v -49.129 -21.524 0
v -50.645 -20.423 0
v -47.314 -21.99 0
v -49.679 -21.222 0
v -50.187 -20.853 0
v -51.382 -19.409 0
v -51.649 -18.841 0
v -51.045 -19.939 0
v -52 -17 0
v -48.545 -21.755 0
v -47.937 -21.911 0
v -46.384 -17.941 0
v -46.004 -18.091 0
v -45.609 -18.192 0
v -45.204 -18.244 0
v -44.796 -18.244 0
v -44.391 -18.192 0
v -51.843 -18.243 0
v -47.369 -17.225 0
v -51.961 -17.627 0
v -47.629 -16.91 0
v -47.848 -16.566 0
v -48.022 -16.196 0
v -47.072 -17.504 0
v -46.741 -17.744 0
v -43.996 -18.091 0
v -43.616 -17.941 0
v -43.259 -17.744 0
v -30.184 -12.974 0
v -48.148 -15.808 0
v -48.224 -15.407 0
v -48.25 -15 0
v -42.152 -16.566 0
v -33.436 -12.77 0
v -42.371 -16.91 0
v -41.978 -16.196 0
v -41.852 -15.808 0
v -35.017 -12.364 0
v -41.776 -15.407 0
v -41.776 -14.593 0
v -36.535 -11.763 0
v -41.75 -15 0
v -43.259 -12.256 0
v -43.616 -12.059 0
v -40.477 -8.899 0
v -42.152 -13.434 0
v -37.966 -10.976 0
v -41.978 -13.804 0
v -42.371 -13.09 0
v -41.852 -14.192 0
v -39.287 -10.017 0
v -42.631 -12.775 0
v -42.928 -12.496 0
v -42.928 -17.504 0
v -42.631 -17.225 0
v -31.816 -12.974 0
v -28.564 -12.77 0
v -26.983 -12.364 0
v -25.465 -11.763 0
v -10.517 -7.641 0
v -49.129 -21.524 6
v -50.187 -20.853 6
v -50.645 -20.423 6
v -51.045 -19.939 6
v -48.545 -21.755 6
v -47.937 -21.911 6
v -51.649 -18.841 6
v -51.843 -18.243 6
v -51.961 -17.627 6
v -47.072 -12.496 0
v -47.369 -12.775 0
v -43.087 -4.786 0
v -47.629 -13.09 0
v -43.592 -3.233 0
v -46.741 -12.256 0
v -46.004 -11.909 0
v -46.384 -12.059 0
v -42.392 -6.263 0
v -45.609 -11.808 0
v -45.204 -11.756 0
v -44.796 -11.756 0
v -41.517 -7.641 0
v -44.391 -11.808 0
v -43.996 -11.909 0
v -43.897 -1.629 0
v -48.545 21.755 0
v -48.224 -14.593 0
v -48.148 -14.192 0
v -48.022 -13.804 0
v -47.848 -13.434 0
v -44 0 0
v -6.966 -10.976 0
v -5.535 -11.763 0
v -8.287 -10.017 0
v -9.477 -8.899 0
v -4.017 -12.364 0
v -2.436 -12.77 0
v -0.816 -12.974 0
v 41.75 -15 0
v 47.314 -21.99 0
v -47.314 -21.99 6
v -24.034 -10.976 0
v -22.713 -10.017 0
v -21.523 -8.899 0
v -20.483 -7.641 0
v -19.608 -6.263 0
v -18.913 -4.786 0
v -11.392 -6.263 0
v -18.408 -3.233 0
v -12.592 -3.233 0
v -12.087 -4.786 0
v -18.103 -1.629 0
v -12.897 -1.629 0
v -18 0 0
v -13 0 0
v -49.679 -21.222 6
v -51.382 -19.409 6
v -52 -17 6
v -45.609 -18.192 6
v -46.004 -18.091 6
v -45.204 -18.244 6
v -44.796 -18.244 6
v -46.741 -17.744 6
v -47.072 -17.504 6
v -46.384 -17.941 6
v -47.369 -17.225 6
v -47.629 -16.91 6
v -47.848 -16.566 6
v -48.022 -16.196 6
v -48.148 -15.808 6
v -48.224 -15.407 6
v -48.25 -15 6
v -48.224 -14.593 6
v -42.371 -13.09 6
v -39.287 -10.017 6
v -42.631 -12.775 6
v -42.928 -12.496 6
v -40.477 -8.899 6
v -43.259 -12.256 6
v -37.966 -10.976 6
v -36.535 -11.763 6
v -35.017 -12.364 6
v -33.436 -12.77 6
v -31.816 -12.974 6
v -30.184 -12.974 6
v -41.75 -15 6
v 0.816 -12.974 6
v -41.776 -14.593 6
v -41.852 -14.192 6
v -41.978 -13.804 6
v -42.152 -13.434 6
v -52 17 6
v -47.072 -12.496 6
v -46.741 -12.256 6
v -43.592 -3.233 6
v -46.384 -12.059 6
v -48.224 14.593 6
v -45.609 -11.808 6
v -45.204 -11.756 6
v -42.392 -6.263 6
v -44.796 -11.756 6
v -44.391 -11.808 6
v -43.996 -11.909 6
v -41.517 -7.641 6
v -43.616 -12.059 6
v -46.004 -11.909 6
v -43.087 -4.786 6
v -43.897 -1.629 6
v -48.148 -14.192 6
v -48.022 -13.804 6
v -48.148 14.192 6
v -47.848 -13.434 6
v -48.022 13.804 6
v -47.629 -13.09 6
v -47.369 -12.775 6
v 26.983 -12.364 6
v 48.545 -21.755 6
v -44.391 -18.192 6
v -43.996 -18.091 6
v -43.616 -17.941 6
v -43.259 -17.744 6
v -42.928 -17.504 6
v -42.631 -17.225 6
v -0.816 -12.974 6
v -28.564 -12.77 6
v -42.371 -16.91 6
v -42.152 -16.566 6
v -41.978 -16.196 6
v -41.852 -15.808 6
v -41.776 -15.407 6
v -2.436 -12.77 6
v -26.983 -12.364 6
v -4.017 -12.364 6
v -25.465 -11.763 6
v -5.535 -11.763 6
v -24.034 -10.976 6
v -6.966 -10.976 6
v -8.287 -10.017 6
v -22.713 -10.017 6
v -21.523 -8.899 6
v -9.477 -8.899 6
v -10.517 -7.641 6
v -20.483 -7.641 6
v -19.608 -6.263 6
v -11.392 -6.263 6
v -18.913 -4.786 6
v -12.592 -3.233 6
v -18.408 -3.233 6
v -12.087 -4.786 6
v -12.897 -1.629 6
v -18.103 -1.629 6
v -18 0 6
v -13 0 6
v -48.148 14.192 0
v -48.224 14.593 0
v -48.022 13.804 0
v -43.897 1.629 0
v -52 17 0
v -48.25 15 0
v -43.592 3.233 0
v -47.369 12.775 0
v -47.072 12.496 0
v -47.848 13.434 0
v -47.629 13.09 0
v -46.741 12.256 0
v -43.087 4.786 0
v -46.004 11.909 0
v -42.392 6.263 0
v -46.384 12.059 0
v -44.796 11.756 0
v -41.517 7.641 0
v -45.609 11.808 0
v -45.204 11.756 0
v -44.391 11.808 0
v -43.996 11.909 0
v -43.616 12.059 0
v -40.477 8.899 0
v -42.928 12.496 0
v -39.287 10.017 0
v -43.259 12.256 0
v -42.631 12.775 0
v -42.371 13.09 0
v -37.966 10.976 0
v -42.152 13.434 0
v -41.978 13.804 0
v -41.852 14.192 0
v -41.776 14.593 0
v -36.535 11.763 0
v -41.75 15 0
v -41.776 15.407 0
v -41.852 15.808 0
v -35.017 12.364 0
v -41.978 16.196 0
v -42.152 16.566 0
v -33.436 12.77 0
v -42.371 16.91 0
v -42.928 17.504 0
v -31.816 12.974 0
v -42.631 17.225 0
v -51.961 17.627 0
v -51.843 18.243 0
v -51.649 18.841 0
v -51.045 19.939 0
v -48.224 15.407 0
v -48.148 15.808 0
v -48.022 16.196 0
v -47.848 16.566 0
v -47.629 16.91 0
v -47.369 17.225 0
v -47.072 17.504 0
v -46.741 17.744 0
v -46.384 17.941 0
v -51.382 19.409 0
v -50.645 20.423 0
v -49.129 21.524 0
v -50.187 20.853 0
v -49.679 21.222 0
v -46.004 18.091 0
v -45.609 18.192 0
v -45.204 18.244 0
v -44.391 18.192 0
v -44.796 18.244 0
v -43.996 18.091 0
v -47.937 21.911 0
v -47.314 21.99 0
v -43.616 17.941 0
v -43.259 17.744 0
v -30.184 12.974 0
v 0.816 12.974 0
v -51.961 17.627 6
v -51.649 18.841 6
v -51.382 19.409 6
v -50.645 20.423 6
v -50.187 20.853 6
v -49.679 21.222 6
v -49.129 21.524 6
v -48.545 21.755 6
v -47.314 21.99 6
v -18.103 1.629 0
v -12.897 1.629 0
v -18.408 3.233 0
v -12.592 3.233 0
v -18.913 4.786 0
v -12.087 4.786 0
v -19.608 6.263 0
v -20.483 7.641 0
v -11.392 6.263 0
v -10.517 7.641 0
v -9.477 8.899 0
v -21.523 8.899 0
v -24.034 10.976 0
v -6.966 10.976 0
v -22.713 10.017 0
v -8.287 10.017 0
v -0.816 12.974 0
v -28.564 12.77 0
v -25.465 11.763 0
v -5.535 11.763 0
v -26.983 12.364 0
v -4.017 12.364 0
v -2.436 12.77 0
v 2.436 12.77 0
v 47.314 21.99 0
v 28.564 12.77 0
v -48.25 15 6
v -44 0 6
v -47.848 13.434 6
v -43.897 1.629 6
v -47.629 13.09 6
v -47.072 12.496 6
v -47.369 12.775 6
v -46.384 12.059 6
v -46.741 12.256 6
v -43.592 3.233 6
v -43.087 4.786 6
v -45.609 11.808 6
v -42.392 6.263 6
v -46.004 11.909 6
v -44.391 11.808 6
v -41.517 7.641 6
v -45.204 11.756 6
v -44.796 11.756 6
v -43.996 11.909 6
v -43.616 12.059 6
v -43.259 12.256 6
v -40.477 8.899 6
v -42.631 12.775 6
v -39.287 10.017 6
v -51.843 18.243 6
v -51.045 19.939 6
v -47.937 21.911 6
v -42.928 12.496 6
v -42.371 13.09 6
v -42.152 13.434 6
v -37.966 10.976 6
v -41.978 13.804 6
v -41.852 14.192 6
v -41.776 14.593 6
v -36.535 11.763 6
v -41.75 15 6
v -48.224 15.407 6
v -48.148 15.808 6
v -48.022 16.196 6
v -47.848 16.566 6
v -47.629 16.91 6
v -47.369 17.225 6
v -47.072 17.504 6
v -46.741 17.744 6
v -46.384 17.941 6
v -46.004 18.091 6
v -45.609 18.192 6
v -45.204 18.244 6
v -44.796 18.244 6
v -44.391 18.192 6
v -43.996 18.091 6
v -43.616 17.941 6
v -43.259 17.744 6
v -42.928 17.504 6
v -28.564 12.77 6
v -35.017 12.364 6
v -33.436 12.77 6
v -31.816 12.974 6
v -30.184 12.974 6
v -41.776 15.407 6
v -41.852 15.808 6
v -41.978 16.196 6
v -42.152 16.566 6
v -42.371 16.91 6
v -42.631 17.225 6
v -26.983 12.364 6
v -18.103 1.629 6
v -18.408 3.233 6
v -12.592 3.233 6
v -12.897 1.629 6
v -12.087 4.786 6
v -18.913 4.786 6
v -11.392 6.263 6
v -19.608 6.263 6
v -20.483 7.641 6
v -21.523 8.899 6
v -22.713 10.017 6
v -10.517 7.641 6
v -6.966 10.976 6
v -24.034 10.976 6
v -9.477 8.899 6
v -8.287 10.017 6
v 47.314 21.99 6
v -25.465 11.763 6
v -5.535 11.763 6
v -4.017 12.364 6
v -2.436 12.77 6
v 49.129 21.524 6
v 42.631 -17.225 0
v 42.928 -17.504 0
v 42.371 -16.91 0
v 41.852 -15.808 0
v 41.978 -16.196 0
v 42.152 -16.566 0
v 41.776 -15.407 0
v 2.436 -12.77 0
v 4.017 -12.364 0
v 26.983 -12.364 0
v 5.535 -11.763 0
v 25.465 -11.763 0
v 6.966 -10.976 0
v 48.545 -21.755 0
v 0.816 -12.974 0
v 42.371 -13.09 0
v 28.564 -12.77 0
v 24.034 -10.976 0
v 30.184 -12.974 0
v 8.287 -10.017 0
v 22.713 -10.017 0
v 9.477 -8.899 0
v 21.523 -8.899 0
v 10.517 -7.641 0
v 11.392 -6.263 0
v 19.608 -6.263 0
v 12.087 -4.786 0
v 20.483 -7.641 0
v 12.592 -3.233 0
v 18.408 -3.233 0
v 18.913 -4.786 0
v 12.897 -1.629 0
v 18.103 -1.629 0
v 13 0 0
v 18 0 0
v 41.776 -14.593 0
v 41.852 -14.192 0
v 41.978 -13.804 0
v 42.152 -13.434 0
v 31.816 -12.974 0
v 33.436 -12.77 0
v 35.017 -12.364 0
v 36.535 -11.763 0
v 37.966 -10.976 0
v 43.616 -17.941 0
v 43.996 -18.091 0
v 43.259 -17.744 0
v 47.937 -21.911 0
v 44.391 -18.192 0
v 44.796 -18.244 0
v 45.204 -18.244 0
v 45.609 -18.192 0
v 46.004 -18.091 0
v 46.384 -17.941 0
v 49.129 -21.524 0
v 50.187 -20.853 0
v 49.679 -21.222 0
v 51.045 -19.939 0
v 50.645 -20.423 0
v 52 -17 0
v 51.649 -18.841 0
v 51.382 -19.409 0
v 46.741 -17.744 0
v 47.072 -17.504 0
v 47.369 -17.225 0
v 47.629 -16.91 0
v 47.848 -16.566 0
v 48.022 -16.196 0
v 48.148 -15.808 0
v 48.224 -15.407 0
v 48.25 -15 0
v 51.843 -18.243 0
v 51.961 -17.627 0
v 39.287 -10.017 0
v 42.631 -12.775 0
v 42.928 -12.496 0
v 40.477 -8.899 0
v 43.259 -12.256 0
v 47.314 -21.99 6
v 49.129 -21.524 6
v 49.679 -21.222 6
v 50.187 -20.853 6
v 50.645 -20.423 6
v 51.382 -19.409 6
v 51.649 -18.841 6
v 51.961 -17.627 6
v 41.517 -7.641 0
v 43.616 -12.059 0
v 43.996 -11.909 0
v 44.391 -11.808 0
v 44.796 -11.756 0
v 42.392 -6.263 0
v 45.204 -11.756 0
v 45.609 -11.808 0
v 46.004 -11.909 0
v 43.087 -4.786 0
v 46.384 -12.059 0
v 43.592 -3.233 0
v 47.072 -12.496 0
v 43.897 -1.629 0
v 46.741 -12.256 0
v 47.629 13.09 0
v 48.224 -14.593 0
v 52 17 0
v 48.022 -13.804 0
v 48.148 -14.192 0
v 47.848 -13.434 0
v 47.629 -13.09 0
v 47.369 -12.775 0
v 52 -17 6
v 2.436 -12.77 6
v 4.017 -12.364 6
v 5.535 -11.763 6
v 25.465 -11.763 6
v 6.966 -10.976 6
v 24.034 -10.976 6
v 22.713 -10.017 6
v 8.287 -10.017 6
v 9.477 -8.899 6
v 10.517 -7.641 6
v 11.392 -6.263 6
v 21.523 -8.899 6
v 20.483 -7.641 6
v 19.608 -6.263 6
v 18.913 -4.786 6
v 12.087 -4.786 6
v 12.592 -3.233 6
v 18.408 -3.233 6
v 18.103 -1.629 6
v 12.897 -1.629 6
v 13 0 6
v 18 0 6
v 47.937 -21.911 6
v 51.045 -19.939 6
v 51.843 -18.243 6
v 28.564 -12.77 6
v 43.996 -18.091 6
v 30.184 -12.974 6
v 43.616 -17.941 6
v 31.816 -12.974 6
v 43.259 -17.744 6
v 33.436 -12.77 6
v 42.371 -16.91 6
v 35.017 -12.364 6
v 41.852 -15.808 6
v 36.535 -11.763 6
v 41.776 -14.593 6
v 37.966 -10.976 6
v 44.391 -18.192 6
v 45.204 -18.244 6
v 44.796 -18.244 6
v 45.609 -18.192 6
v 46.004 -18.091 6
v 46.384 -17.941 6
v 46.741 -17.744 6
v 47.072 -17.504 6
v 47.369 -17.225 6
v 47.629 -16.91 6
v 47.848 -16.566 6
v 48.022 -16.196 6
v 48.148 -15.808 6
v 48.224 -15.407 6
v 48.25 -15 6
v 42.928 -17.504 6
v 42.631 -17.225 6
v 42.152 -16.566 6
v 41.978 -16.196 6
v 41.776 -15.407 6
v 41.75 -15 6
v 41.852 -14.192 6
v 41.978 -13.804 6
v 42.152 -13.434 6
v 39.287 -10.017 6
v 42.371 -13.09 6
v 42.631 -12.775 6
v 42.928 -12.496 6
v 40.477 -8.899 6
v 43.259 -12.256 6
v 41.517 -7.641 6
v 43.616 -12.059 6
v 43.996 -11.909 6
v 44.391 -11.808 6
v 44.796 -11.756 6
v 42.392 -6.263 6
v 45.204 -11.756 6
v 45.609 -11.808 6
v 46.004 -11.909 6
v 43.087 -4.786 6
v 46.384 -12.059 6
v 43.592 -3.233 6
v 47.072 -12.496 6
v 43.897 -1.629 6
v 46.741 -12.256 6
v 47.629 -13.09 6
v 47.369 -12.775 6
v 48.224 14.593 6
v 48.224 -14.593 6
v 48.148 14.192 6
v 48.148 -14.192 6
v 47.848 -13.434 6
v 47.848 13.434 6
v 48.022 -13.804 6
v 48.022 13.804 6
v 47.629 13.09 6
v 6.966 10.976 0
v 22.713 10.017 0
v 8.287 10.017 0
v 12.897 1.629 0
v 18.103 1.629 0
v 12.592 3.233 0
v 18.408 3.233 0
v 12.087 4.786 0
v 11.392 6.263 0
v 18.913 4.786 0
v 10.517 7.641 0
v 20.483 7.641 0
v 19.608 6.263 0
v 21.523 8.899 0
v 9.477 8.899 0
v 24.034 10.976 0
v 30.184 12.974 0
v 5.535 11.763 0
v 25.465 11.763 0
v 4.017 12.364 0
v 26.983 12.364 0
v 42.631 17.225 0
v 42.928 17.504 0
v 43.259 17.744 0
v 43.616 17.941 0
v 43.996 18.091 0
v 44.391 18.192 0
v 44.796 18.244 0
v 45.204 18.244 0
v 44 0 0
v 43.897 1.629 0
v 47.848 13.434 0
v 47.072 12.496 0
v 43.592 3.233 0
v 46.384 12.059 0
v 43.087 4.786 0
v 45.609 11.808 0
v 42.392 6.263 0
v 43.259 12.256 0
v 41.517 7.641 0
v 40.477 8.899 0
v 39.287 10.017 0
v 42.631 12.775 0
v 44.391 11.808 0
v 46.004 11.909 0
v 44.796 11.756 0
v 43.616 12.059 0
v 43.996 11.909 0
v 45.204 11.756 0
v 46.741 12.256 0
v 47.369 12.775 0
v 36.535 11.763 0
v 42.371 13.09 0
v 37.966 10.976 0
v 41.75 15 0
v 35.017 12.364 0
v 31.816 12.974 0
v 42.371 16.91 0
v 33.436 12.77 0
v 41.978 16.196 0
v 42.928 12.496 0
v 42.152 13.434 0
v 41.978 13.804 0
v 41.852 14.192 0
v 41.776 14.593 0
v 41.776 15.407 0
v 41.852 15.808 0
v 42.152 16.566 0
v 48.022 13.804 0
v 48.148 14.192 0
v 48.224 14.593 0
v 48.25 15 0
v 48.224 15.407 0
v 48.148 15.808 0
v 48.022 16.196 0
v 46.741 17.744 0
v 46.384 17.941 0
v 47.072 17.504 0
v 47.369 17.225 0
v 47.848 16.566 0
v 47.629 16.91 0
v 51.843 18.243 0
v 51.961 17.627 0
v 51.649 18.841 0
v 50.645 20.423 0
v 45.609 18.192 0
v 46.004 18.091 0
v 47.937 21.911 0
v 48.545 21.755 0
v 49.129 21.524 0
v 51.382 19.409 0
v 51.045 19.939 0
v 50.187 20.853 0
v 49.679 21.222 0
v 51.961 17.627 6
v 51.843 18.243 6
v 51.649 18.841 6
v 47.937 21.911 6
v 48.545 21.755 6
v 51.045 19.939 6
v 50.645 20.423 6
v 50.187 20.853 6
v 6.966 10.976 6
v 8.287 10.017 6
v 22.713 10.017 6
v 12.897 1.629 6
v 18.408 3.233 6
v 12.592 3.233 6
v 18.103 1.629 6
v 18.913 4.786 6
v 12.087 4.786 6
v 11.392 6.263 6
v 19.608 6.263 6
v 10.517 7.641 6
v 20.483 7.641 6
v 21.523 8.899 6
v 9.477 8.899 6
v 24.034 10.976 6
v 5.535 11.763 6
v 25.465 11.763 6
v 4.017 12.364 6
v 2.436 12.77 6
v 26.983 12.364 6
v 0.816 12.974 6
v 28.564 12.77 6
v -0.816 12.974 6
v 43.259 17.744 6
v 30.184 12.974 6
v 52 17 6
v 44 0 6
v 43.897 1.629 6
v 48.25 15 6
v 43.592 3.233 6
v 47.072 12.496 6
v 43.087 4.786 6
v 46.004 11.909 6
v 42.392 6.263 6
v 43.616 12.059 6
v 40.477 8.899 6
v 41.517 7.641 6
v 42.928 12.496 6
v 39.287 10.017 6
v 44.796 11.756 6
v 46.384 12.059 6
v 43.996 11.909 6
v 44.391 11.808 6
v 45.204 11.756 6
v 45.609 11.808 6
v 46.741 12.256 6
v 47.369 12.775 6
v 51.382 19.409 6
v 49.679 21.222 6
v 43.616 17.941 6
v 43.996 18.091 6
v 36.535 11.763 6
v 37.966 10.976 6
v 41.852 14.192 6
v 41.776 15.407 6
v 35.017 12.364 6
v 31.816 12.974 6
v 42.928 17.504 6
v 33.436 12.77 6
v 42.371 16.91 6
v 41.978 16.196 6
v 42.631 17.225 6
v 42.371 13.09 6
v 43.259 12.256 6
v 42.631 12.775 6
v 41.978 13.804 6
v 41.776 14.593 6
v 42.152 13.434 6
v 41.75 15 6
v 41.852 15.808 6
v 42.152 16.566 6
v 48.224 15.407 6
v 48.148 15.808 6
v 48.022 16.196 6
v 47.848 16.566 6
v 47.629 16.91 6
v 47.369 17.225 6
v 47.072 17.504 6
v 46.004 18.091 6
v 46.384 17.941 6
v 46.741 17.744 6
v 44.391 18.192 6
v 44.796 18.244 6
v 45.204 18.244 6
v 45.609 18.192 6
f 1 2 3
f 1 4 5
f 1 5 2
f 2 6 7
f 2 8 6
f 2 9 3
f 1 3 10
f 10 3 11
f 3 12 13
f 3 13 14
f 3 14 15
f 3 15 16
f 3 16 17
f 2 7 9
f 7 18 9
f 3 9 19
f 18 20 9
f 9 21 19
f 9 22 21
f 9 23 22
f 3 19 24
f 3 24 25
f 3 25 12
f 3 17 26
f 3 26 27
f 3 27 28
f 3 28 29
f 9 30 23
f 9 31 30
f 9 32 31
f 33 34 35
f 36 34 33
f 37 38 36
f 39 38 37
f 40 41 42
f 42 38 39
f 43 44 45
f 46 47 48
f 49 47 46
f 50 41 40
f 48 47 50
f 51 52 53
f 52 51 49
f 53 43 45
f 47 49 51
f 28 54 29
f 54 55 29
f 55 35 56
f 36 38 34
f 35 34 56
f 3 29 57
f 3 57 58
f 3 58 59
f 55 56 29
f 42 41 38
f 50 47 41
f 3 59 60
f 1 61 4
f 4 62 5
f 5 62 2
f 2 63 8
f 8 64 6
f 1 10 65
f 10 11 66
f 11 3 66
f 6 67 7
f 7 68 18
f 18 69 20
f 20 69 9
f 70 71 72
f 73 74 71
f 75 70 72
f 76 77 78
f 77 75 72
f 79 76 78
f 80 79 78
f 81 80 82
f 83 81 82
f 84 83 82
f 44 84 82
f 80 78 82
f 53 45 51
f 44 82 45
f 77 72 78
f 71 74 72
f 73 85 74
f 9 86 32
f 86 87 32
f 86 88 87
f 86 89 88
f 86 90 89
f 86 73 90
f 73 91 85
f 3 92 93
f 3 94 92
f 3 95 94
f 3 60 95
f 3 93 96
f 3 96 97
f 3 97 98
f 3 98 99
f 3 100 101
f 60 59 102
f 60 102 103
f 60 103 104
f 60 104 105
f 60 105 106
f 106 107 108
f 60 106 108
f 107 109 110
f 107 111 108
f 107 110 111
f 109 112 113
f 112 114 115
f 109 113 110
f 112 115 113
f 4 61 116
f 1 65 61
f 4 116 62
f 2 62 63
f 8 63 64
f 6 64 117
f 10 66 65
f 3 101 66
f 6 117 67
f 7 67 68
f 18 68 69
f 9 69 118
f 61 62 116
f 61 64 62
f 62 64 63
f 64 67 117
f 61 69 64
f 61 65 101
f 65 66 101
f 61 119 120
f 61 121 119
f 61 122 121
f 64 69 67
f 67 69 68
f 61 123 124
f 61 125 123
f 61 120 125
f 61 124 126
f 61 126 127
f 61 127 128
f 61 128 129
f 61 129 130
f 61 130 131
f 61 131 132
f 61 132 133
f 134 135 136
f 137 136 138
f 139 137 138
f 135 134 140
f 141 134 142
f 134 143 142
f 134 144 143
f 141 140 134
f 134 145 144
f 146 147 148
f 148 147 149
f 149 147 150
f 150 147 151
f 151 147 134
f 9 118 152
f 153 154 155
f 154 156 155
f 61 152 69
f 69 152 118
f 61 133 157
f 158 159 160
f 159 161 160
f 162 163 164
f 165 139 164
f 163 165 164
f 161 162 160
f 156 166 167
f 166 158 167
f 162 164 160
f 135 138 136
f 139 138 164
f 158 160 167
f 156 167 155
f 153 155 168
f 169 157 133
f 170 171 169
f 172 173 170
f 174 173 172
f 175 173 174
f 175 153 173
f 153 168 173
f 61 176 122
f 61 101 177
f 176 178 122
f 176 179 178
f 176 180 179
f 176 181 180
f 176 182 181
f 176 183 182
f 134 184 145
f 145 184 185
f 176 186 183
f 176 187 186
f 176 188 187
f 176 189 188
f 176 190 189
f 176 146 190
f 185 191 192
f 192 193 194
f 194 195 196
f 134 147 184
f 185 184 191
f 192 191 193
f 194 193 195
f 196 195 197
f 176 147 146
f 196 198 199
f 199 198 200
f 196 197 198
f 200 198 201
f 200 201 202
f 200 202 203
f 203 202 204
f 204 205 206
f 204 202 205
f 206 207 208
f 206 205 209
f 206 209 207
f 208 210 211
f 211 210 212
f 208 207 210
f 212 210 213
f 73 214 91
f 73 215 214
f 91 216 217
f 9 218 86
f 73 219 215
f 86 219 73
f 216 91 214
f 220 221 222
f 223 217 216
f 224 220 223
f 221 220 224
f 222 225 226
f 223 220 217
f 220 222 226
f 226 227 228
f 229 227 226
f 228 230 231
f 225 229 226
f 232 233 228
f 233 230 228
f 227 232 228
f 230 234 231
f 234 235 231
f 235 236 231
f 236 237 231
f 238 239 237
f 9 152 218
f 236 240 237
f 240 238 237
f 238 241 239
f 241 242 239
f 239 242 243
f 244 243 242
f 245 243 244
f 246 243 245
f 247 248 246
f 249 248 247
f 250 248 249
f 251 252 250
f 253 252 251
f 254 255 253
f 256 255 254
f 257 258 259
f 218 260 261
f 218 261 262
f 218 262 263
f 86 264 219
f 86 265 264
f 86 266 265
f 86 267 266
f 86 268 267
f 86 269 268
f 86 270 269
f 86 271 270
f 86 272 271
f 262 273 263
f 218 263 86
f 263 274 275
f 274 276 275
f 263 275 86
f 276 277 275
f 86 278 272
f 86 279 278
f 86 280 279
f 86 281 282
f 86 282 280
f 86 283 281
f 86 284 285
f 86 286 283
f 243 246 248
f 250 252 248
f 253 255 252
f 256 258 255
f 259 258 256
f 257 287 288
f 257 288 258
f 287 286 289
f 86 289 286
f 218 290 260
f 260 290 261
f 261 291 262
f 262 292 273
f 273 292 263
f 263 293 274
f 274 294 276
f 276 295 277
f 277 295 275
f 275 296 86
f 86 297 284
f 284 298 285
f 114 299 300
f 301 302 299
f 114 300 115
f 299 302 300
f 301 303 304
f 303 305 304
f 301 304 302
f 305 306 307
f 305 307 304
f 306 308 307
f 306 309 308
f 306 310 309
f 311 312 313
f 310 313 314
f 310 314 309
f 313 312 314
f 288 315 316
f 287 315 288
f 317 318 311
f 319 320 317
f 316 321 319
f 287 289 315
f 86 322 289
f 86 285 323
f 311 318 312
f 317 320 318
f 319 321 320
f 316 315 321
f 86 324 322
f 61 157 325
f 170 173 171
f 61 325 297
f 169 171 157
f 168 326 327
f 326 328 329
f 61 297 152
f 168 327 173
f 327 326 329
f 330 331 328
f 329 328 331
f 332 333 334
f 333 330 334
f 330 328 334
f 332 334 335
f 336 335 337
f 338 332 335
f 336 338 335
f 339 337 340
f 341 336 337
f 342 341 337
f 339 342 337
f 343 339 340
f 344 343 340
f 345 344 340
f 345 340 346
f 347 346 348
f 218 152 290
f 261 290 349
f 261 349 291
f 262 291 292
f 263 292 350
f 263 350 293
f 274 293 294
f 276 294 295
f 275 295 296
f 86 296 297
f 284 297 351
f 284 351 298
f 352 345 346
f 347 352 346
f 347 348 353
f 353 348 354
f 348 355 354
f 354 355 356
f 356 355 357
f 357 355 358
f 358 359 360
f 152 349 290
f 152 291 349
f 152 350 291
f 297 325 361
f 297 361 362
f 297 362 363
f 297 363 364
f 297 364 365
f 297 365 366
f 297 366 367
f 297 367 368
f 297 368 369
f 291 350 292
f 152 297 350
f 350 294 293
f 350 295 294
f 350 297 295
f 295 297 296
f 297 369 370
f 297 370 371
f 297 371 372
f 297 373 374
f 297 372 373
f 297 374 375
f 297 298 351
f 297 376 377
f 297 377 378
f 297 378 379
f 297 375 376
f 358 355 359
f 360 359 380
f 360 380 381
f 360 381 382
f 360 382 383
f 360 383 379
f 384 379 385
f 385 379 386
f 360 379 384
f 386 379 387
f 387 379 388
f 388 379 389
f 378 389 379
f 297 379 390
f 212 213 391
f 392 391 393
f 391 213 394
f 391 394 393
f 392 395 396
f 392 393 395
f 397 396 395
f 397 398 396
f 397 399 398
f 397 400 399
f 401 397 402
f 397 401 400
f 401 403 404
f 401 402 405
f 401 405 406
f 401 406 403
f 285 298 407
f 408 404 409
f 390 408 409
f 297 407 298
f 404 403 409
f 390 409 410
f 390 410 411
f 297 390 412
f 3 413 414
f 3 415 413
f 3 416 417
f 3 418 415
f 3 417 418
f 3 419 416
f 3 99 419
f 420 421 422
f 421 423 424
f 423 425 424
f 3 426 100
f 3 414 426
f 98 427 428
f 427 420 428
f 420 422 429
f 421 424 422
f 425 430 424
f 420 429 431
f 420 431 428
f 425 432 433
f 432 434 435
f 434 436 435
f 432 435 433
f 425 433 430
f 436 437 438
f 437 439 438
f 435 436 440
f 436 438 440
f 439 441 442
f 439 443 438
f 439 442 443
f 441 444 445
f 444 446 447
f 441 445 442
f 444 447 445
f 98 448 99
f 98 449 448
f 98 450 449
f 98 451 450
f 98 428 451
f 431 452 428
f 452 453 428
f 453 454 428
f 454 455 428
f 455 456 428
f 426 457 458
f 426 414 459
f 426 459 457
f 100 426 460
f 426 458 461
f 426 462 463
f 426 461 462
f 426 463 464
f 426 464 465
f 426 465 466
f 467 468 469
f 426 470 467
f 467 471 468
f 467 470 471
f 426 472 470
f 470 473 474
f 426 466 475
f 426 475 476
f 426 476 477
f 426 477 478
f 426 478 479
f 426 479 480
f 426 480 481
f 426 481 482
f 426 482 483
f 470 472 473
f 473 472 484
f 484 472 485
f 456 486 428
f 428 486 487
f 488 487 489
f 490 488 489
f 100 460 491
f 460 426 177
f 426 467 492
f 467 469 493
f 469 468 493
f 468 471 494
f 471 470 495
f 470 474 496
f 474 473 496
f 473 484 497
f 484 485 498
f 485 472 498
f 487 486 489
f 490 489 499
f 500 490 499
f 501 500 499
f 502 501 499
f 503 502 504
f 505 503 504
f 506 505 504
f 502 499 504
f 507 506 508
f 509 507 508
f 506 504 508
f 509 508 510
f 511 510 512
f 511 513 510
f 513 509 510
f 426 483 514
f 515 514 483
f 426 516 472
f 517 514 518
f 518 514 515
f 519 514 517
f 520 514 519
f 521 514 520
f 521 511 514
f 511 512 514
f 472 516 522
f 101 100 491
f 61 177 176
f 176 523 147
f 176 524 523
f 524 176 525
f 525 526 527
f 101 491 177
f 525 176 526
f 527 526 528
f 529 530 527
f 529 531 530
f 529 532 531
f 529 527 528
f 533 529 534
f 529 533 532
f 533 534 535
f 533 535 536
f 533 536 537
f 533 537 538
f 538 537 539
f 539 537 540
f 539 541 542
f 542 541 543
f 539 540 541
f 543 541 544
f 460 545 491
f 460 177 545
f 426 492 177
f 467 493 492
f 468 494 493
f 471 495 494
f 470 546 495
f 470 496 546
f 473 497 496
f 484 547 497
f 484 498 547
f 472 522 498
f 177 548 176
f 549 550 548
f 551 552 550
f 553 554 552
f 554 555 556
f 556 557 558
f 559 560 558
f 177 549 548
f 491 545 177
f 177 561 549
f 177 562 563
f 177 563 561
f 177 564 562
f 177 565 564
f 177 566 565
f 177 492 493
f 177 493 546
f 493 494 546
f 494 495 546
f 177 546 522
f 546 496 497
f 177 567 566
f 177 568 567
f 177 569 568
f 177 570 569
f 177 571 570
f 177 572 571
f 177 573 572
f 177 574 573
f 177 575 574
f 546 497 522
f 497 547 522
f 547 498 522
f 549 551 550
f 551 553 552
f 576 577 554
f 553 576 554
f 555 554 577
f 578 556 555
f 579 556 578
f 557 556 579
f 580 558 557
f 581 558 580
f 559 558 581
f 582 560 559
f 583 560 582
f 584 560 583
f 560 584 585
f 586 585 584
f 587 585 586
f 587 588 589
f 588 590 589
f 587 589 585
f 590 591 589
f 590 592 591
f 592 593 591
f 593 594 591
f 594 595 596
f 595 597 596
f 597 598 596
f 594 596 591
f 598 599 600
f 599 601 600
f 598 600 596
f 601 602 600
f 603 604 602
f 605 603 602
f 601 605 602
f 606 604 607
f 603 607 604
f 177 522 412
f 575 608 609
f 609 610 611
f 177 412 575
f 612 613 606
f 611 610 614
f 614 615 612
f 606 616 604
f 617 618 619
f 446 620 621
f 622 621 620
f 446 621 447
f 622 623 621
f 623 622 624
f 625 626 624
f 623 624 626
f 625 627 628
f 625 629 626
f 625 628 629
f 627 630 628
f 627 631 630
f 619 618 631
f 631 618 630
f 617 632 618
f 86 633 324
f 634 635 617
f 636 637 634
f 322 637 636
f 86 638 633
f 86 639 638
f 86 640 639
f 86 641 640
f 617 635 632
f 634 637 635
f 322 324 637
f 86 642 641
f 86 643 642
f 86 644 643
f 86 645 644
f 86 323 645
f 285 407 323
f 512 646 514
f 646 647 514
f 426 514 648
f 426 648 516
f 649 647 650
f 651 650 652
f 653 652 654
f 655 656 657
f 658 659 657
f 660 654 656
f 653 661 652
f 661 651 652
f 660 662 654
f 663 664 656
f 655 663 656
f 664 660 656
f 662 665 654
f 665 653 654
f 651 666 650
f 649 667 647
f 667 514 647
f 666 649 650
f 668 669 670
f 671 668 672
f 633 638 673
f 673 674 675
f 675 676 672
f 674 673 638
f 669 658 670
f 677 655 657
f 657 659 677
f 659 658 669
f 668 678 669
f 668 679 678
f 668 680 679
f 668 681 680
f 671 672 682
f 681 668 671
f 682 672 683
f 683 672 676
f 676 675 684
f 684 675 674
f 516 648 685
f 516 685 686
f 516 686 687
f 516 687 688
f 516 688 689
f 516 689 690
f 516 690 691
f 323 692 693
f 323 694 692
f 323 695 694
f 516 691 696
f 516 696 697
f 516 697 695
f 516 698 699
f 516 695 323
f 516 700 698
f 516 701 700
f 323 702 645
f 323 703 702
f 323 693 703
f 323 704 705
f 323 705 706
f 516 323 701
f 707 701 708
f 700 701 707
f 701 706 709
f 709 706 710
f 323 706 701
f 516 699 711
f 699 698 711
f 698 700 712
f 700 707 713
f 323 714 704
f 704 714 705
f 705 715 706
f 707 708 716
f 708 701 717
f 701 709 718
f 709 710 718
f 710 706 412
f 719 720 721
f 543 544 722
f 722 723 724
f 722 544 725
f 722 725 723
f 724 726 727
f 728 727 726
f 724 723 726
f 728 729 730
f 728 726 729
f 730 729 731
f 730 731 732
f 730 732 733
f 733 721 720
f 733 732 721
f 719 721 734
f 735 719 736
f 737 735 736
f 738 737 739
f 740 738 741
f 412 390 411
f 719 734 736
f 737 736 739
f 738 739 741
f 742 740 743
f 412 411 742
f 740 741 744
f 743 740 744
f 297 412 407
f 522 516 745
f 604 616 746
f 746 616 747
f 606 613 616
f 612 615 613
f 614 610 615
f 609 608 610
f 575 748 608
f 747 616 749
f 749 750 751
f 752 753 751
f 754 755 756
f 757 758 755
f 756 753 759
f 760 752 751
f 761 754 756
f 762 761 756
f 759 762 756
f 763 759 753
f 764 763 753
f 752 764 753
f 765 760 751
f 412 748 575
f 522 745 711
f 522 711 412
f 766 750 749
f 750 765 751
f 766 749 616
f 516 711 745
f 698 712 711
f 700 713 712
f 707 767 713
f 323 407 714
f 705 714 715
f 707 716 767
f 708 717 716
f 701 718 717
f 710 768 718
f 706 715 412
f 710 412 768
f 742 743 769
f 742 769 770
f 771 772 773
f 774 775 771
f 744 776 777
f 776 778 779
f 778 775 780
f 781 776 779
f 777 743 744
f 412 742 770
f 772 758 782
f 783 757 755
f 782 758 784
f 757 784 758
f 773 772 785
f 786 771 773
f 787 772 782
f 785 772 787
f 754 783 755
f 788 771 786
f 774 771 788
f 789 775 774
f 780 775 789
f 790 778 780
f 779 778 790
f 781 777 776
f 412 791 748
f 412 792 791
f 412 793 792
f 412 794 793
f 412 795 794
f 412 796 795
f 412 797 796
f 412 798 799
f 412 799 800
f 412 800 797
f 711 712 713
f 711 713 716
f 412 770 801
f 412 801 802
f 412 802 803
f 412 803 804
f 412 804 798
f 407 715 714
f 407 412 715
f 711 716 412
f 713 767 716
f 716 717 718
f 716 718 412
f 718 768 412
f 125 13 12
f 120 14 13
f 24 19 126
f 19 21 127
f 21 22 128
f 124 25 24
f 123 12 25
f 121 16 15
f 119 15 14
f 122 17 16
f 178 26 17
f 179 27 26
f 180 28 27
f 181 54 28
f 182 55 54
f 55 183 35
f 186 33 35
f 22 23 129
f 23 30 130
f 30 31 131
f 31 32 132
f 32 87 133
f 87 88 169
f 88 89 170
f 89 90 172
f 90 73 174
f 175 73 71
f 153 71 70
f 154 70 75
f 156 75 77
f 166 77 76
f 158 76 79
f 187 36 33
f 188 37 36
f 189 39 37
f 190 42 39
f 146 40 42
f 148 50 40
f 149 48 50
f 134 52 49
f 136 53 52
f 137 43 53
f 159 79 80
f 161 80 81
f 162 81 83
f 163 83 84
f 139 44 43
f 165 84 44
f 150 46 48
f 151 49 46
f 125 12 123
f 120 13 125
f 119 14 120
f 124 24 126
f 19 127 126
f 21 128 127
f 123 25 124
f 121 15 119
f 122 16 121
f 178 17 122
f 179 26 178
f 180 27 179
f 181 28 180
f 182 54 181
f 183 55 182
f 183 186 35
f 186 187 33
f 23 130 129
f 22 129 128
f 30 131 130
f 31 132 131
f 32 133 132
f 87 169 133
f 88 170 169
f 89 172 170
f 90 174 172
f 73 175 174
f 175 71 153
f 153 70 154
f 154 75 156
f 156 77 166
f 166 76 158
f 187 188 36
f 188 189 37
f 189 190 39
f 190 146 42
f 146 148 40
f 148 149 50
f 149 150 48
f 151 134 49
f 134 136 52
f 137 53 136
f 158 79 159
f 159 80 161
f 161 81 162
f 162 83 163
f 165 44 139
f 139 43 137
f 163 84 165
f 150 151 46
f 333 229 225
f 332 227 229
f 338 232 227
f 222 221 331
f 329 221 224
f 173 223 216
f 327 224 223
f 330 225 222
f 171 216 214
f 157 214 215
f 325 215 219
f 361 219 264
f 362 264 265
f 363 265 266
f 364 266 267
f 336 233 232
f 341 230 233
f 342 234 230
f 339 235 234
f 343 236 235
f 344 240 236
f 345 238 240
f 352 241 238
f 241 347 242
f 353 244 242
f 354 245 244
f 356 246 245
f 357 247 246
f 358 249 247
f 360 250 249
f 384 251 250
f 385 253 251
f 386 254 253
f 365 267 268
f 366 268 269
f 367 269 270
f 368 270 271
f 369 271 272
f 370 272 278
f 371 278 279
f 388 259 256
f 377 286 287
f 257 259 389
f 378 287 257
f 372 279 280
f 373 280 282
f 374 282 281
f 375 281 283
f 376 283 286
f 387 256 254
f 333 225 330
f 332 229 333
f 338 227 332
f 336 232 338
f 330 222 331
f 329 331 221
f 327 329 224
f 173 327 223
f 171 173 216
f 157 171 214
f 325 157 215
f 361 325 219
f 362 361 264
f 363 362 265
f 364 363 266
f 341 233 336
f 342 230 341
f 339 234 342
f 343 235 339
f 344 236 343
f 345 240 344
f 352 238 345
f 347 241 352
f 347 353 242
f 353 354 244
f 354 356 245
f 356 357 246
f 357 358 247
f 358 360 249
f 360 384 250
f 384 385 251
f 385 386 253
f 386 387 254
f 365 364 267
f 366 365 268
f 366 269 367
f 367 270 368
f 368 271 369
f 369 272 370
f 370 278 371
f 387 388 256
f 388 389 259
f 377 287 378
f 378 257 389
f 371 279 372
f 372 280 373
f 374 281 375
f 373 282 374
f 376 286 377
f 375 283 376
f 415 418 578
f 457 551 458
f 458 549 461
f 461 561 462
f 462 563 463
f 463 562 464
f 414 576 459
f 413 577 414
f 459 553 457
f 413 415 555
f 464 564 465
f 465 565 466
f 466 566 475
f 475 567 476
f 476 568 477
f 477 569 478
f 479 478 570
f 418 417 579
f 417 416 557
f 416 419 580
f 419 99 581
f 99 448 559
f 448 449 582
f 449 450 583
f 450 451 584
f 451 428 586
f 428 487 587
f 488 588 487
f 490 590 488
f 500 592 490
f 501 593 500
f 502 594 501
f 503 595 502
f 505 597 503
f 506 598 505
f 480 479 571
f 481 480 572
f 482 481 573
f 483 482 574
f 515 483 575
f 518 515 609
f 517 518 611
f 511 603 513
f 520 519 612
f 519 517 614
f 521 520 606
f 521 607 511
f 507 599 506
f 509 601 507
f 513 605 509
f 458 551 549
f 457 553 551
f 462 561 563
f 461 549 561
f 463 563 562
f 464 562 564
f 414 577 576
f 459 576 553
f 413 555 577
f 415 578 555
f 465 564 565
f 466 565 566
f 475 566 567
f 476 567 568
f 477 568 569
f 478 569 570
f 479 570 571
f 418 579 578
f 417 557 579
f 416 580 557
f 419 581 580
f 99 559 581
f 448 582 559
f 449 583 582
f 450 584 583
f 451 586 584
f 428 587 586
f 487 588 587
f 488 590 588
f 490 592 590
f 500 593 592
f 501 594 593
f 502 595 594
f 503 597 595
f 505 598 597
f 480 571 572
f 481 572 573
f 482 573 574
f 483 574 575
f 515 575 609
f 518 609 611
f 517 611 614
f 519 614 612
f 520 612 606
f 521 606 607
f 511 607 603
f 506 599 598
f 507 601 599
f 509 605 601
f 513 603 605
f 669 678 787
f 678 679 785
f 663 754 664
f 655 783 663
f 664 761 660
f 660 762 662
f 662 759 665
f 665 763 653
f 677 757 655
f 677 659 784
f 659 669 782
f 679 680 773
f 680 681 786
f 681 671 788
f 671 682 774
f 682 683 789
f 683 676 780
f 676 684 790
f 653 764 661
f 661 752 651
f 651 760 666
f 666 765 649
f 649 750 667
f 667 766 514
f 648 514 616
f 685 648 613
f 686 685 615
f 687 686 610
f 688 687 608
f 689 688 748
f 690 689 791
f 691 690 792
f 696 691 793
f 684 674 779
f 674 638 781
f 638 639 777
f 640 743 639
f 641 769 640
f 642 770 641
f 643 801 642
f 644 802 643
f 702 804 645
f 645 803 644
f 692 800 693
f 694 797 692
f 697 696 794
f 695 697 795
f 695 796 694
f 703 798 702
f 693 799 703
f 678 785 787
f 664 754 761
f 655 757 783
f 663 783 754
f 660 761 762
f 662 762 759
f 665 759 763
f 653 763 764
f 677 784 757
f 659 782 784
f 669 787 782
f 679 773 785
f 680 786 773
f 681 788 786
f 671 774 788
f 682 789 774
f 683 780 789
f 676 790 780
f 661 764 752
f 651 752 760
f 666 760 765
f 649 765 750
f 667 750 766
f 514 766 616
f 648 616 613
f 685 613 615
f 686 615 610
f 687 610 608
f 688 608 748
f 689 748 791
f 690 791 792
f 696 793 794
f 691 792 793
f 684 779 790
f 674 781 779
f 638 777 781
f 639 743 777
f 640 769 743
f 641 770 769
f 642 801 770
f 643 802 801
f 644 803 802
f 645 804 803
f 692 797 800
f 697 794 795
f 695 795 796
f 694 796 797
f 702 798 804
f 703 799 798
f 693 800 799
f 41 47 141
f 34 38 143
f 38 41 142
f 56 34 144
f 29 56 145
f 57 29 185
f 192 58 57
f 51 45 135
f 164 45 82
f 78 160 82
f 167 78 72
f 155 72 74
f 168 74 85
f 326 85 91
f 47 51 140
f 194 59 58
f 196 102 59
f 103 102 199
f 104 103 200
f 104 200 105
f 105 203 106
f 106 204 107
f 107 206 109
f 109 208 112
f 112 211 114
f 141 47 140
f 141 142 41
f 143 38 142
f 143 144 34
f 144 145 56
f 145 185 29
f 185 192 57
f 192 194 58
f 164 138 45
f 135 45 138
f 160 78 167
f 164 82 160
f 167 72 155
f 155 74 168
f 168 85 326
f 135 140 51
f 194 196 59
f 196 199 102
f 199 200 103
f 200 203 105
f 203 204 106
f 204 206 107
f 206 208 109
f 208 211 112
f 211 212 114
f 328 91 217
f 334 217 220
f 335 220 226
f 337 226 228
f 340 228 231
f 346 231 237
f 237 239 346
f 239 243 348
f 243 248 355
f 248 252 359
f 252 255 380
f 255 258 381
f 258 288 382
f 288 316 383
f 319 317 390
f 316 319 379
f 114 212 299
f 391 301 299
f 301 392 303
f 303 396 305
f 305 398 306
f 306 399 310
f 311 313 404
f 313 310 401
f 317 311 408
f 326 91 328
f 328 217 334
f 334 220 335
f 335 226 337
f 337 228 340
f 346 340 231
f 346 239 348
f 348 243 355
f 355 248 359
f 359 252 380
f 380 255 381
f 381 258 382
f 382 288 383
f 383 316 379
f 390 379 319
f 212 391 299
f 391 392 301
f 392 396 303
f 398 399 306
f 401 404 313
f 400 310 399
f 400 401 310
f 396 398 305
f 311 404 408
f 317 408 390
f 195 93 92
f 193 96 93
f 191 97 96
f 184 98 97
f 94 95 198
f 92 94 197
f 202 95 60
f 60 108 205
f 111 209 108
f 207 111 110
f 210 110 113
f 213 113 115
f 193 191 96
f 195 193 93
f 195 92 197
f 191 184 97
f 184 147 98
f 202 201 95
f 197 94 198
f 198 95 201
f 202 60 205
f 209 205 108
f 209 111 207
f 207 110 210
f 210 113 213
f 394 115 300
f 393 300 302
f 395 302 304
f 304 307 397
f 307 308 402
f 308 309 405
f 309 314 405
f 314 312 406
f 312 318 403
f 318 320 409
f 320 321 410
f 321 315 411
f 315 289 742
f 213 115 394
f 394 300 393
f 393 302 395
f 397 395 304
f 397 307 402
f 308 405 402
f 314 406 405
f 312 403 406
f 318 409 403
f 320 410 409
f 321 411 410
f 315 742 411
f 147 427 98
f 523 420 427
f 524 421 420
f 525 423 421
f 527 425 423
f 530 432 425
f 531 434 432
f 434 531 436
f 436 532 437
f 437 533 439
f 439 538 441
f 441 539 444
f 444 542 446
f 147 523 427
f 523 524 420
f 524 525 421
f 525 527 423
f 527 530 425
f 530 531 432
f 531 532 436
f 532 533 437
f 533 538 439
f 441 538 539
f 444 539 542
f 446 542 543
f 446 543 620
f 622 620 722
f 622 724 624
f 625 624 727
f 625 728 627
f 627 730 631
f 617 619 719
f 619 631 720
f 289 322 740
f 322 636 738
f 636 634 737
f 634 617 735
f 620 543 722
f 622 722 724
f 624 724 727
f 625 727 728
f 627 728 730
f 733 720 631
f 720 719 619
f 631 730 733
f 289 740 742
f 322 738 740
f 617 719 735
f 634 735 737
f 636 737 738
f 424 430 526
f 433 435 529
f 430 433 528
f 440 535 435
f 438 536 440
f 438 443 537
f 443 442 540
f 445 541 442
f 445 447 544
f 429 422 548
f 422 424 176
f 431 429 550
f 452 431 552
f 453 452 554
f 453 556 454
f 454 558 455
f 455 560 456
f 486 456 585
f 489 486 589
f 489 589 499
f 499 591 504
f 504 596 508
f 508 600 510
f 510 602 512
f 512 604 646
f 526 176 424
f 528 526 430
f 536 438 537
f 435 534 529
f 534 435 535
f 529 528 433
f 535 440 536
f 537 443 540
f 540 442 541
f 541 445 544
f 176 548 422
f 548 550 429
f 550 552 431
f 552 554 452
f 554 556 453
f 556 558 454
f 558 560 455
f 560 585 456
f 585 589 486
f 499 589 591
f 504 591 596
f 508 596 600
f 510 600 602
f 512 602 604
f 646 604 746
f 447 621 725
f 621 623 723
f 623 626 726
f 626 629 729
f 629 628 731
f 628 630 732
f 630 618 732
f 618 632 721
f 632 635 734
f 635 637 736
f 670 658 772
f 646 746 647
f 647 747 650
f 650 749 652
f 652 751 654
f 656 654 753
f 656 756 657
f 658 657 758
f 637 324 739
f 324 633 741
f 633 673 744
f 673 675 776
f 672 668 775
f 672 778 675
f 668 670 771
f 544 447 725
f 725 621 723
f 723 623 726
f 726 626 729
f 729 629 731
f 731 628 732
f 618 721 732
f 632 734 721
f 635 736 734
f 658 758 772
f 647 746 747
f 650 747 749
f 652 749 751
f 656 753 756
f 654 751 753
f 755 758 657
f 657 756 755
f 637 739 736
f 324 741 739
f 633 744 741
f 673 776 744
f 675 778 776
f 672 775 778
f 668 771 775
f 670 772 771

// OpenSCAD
$fn = 50;

difference() {
	union() {
		hull() {
			translate(v = [-47.0, 17.0, 0]) {
				cylinder(h = 6, r = 5);
			}
			translate(v = [47.0, 17.0, 0]) {
				cylinder(h = 6, r = 5);
			}
			translate(v = [-47.0, -17.0, 0]) {
				cylinder(h = 6, r = 5);
			}
			translate(v = [47.0, -17.0, 0]) {
				cylinder(h = 6, r = 5);
			}
		}
	}
	union() {
		translate(v = [-45.0, -15.0, -100.0]) {
			cylinder(h = 200, r = 3.25);
		}
		translate(v = [-45.0, 15.0, -100.0]) {
			cylinder(h = 200, r = 3.25);
		}
		translate(v = [45.0, -15.0, -100.0]) {
			cylinder(h = 200, r = 3.25);
		}
		translate(v = [45.0, 15.0, -100.0]) {
			cylinder(h = 200, r = 3.25);
		}
		translate(v = [-45.0, -15.0, -100.0]) {
			cylinder(h = 200, r = 1.8);
		}
		translate(v = [-45.0, 15.0, -100.0]) {
			cylinder(h = 200, r = 1.8);
		}
		translate(v = [45.0, -15.0, -100.0]) {
			cylinder(h = 200, r = 1.8);
		}
		translate(v = [45.0, 15.0, -100.0]) {
			cylinder(h = 200, r = 1.8);
		}
		translate(v = [-31.0, 0, 0.0]) {
			cylinder(h = 6, r = 13.0);
		}
		cylinder(h = 6, r = 13.0);
		translate(v = [31.0, 0, 0.0]) {
			cylinder(h = 6, r = 13.0);
		}
	}
}
